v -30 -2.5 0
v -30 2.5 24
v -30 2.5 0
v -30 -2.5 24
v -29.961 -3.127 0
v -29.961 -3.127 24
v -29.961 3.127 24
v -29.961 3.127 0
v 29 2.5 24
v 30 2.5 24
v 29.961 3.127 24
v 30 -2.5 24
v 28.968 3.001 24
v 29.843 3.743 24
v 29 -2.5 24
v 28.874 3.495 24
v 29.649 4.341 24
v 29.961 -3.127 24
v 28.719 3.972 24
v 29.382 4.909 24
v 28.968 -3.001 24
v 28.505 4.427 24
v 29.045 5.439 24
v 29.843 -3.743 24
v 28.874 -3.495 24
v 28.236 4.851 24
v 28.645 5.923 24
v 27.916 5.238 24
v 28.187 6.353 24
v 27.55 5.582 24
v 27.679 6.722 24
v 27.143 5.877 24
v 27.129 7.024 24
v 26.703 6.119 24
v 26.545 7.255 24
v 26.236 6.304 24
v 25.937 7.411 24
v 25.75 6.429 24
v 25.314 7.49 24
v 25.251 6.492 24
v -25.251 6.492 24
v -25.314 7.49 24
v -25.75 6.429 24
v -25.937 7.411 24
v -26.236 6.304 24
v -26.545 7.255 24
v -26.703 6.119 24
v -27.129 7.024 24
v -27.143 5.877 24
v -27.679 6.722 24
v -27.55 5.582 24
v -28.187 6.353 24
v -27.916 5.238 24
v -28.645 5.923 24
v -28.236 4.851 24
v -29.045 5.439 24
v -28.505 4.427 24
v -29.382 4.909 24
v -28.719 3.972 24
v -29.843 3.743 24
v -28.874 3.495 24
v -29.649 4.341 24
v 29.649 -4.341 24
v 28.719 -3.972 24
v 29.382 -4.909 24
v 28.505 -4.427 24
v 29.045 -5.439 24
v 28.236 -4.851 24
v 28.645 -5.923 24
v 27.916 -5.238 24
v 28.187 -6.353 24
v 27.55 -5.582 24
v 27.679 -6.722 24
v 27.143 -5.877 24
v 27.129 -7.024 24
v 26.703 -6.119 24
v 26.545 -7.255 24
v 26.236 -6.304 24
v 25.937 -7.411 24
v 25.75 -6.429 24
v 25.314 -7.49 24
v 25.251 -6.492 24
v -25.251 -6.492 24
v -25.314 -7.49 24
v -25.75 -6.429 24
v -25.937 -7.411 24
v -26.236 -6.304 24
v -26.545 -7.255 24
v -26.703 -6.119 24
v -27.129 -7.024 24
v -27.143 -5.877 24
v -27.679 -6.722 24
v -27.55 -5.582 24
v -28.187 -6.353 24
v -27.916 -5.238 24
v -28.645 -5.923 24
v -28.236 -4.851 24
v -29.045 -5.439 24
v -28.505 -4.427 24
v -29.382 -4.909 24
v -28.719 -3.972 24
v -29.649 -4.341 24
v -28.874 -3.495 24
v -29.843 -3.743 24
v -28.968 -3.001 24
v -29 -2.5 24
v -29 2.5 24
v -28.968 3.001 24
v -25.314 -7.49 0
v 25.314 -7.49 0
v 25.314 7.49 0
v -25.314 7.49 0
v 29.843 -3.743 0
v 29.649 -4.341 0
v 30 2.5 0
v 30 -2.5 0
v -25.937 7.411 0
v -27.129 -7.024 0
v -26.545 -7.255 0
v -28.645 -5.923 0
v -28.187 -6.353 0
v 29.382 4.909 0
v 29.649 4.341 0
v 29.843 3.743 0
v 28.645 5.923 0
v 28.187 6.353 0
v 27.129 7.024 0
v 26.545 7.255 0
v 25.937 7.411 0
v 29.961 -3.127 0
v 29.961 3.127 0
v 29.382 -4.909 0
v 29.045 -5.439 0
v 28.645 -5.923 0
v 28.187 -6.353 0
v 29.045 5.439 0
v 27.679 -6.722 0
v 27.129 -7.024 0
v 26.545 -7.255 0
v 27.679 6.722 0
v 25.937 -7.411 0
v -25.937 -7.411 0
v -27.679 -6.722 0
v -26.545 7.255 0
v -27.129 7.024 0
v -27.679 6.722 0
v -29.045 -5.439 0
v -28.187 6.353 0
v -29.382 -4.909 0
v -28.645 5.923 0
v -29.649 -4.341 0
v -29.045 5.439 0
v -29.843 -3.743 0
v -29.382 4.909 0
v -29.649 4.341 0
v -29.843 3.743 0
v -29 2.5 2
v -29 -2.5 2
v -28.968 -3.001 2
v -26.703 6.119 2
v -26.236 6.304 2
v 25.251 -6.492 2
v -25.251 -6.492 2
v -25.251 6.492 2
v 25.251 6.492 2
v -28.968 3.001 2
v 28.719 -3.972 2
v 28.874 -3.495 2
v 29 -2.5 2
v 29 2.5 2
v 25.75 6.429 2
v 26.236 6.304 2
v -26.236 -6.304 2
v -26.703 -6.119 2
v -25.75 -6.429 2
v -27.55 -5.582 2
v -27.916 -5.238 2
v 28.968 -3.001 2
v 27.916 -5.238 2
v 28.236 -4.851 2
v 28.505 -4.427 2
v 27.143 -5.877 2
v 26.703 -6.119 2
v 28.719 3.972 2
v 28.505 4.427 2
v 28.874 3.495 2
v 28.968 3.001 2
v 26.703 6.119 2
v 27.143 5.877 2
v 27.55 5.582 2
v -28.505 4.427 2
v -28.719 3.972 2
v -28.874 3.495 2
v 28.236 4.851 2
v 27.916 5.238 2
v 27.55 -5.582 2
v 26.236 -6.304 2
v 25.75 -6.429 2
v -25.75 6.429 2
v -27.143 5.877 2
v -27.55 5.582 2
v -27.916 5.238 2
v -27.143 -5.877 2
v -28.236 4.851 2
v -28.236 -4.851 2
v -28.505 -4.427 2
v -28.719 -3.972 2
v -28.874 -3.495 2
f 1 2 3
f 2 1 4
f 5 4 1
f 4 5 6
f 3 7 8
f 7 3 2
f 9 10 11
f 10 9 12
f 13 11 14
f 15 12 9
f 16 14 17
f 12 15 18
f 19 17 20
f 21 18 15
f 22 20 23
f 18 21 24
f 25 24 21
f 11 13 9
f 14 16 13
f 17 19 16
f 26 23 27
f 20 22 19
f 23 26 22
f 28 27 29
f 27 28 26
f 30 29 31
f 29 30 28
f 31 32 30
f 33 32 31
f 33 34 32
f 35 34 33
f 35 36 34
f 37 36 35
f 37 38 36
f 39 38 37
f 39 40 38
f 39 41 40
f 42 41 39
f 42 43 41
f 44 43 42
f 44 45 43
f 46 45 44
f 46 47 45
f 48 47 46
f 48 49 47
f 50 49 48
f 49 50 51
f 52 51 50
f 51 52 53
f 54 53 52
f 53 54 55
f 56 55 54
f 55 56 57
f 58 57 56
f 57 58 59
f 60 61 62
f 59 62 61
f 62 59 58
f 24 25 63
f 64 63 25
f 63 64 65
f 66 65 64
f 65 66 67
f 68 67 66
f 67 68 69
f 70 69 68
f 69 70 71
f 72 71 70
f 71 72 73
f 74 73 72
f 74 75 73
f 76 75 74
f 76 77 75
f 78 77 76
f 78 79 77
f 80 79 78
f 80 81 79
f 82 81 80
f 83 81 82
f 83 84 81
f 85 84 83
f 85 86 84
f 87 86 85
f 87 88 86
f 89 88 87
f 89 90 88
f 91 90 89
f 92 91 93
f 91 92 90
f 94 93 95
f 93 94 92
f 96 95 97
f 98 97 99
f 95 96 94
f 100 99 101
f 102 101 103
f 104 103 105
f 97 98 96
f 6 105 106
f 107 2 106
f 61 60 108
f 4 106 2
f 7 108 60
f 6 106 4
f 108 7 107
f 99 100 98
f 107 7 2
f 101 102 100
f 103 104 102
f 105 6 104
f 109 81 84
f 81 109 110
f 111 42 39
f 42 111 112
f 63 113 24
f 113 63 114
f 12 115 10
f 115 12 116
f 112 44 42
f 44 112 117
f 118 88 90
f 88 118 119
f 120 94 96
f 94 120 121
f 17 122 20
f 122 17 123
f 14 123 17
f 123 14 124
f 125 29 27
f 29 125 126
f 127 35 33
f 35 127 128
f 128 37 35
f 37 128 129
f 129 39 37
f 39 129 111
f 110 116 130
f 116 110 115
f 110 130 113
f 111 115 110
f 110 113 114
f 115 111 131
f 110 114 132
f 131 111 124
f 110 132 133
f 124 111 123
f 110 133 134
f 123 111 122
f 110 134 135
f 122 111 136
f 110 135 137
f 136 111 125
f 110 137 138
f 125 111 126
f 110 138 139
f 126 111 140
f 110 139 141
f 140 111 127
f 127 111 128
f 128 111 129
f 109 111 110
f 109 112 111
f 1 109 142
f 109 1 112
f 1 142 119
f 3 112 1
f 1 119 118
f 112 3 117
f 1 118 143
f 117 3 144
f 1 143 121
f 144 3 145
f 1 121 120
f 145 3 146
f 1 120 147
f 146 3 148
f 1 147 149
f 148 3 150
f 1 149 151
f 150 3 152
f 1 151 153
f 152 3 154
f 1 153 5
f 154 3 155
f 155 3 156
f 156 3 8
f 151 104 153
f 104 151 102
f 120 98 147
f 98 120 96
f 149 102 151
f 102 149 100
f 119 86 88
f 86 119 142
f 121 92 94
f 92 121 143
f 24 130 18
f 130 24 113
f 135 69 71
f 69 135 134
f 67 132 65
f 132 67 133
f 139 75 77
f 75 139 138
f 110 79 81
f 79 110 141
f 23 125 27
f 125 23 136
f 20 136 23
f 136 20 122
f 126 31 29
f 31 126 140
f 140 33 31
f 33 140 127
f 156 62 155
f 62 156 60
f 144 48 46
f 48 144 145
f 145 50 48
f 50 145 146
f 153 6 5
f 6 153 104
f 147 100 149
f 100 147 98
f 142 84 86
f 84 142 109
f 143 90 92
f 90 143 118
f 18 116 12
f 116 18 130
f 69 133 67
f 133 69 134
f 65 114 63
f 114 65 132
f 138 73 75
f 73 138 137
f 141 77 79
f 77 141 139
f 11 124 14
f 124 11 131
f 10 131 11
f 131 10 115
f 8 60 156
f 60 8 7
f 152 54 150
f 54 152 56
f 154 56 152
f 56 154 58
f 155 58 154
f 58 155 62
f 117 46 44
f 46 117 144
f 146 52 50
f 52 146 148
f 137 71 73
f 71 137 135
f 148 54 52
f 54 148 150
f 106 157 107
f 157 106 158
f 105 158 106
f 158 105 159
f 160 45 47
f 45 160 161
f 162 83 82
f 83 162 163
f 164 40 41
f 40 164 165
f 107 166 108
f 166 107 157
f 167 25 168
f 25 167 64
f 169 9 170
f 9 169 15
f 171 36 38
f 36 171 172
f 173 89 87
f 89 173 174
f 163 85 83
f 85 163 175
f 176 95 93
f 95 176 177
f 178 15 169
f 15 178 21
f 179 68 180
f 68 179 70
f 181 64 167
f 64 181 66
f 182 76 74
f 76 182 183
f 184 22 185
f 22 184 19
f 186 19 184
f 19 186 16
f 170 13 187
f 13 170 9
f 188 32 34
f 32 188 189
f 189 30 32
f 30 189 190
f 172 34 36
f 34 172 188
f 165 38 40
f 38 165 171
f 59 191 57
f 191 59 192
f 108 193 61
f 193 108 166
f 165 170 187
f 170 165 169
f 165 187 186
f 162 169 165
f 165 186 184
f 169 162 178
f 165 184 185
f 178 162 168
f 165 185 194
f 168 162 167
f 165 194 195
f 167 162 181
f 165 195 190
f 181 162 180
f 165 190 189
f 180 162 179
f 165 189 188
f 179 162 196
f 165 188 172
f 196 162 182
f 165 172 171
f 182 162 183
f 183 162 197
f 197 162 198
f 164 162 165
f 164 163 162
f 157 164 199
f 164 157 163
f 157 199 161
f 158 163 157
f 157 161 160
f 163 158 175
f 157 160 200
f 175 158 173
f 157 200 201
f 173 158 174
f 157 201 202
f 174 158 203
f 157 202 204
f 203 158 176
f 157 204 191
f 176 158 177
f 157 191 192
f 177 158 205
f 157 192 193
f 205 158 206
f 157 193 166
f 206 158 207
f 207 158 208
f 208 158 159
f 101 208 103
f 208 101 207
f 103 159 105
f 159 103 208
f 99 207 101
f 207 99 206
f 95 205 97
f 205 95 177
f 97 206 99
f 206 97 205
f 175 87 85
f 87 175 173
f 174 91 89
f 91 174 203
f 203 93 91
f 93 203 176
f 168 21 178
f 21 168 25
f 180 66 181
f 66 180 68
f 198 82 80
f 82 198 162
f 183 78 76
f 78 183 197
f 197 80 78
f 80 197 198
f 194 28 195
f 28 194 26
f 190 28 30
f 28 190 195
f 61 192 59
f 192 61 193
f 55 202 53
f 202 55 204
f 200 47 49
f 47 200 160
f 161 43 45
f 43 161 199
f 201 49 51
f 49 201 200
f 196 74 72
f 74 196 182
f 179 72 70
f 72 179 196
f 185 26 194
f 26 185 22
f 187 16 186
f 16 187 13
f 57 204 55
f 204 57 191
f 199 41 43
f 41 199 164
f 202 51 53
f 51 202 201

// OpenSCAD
$fn = 50;


difference() {
	union() {
		hull() {
			translate(v = [-25.0000000000, 2.5000000000, 0]) {
				cylinder(h = 24, r = 5);
			}
			translate(v = [25.0000000000, 2.5000000000, 0]) {
				cylinder(h = 24, r = 5);
			}
			translate(v = [-25.0000000000, -2.5000000000, 0]) {
				cylinder(h = 24, r = 5);
			}
			translate(v = [25.0000000000, -2.5000000000, 0]) {
				cylinder(h = 24, r = 5);
			}
		}
	}
	union() {
		translate(v = [0, 0, 2]) {
			#hull() {
				translate(v = [-25.0000000000, 2.5000000000, 0]) {
					cylinder(h = 22, r = 4);
				}
				translate(v = [25.0000000000, 2.5000000000, 0]) {
					cylinder(h = 22, r = 4);
				}
				translate(v = [-25.0000000000, -2.5000000000, 0]) {
					cylinder(h = 22, r = 4);
				}
				translate(v = [25.0000000000, -2.5000000000, 0]) {
					cylinder(h = 22, r = 4);
				}
			}
		}
	}
}
